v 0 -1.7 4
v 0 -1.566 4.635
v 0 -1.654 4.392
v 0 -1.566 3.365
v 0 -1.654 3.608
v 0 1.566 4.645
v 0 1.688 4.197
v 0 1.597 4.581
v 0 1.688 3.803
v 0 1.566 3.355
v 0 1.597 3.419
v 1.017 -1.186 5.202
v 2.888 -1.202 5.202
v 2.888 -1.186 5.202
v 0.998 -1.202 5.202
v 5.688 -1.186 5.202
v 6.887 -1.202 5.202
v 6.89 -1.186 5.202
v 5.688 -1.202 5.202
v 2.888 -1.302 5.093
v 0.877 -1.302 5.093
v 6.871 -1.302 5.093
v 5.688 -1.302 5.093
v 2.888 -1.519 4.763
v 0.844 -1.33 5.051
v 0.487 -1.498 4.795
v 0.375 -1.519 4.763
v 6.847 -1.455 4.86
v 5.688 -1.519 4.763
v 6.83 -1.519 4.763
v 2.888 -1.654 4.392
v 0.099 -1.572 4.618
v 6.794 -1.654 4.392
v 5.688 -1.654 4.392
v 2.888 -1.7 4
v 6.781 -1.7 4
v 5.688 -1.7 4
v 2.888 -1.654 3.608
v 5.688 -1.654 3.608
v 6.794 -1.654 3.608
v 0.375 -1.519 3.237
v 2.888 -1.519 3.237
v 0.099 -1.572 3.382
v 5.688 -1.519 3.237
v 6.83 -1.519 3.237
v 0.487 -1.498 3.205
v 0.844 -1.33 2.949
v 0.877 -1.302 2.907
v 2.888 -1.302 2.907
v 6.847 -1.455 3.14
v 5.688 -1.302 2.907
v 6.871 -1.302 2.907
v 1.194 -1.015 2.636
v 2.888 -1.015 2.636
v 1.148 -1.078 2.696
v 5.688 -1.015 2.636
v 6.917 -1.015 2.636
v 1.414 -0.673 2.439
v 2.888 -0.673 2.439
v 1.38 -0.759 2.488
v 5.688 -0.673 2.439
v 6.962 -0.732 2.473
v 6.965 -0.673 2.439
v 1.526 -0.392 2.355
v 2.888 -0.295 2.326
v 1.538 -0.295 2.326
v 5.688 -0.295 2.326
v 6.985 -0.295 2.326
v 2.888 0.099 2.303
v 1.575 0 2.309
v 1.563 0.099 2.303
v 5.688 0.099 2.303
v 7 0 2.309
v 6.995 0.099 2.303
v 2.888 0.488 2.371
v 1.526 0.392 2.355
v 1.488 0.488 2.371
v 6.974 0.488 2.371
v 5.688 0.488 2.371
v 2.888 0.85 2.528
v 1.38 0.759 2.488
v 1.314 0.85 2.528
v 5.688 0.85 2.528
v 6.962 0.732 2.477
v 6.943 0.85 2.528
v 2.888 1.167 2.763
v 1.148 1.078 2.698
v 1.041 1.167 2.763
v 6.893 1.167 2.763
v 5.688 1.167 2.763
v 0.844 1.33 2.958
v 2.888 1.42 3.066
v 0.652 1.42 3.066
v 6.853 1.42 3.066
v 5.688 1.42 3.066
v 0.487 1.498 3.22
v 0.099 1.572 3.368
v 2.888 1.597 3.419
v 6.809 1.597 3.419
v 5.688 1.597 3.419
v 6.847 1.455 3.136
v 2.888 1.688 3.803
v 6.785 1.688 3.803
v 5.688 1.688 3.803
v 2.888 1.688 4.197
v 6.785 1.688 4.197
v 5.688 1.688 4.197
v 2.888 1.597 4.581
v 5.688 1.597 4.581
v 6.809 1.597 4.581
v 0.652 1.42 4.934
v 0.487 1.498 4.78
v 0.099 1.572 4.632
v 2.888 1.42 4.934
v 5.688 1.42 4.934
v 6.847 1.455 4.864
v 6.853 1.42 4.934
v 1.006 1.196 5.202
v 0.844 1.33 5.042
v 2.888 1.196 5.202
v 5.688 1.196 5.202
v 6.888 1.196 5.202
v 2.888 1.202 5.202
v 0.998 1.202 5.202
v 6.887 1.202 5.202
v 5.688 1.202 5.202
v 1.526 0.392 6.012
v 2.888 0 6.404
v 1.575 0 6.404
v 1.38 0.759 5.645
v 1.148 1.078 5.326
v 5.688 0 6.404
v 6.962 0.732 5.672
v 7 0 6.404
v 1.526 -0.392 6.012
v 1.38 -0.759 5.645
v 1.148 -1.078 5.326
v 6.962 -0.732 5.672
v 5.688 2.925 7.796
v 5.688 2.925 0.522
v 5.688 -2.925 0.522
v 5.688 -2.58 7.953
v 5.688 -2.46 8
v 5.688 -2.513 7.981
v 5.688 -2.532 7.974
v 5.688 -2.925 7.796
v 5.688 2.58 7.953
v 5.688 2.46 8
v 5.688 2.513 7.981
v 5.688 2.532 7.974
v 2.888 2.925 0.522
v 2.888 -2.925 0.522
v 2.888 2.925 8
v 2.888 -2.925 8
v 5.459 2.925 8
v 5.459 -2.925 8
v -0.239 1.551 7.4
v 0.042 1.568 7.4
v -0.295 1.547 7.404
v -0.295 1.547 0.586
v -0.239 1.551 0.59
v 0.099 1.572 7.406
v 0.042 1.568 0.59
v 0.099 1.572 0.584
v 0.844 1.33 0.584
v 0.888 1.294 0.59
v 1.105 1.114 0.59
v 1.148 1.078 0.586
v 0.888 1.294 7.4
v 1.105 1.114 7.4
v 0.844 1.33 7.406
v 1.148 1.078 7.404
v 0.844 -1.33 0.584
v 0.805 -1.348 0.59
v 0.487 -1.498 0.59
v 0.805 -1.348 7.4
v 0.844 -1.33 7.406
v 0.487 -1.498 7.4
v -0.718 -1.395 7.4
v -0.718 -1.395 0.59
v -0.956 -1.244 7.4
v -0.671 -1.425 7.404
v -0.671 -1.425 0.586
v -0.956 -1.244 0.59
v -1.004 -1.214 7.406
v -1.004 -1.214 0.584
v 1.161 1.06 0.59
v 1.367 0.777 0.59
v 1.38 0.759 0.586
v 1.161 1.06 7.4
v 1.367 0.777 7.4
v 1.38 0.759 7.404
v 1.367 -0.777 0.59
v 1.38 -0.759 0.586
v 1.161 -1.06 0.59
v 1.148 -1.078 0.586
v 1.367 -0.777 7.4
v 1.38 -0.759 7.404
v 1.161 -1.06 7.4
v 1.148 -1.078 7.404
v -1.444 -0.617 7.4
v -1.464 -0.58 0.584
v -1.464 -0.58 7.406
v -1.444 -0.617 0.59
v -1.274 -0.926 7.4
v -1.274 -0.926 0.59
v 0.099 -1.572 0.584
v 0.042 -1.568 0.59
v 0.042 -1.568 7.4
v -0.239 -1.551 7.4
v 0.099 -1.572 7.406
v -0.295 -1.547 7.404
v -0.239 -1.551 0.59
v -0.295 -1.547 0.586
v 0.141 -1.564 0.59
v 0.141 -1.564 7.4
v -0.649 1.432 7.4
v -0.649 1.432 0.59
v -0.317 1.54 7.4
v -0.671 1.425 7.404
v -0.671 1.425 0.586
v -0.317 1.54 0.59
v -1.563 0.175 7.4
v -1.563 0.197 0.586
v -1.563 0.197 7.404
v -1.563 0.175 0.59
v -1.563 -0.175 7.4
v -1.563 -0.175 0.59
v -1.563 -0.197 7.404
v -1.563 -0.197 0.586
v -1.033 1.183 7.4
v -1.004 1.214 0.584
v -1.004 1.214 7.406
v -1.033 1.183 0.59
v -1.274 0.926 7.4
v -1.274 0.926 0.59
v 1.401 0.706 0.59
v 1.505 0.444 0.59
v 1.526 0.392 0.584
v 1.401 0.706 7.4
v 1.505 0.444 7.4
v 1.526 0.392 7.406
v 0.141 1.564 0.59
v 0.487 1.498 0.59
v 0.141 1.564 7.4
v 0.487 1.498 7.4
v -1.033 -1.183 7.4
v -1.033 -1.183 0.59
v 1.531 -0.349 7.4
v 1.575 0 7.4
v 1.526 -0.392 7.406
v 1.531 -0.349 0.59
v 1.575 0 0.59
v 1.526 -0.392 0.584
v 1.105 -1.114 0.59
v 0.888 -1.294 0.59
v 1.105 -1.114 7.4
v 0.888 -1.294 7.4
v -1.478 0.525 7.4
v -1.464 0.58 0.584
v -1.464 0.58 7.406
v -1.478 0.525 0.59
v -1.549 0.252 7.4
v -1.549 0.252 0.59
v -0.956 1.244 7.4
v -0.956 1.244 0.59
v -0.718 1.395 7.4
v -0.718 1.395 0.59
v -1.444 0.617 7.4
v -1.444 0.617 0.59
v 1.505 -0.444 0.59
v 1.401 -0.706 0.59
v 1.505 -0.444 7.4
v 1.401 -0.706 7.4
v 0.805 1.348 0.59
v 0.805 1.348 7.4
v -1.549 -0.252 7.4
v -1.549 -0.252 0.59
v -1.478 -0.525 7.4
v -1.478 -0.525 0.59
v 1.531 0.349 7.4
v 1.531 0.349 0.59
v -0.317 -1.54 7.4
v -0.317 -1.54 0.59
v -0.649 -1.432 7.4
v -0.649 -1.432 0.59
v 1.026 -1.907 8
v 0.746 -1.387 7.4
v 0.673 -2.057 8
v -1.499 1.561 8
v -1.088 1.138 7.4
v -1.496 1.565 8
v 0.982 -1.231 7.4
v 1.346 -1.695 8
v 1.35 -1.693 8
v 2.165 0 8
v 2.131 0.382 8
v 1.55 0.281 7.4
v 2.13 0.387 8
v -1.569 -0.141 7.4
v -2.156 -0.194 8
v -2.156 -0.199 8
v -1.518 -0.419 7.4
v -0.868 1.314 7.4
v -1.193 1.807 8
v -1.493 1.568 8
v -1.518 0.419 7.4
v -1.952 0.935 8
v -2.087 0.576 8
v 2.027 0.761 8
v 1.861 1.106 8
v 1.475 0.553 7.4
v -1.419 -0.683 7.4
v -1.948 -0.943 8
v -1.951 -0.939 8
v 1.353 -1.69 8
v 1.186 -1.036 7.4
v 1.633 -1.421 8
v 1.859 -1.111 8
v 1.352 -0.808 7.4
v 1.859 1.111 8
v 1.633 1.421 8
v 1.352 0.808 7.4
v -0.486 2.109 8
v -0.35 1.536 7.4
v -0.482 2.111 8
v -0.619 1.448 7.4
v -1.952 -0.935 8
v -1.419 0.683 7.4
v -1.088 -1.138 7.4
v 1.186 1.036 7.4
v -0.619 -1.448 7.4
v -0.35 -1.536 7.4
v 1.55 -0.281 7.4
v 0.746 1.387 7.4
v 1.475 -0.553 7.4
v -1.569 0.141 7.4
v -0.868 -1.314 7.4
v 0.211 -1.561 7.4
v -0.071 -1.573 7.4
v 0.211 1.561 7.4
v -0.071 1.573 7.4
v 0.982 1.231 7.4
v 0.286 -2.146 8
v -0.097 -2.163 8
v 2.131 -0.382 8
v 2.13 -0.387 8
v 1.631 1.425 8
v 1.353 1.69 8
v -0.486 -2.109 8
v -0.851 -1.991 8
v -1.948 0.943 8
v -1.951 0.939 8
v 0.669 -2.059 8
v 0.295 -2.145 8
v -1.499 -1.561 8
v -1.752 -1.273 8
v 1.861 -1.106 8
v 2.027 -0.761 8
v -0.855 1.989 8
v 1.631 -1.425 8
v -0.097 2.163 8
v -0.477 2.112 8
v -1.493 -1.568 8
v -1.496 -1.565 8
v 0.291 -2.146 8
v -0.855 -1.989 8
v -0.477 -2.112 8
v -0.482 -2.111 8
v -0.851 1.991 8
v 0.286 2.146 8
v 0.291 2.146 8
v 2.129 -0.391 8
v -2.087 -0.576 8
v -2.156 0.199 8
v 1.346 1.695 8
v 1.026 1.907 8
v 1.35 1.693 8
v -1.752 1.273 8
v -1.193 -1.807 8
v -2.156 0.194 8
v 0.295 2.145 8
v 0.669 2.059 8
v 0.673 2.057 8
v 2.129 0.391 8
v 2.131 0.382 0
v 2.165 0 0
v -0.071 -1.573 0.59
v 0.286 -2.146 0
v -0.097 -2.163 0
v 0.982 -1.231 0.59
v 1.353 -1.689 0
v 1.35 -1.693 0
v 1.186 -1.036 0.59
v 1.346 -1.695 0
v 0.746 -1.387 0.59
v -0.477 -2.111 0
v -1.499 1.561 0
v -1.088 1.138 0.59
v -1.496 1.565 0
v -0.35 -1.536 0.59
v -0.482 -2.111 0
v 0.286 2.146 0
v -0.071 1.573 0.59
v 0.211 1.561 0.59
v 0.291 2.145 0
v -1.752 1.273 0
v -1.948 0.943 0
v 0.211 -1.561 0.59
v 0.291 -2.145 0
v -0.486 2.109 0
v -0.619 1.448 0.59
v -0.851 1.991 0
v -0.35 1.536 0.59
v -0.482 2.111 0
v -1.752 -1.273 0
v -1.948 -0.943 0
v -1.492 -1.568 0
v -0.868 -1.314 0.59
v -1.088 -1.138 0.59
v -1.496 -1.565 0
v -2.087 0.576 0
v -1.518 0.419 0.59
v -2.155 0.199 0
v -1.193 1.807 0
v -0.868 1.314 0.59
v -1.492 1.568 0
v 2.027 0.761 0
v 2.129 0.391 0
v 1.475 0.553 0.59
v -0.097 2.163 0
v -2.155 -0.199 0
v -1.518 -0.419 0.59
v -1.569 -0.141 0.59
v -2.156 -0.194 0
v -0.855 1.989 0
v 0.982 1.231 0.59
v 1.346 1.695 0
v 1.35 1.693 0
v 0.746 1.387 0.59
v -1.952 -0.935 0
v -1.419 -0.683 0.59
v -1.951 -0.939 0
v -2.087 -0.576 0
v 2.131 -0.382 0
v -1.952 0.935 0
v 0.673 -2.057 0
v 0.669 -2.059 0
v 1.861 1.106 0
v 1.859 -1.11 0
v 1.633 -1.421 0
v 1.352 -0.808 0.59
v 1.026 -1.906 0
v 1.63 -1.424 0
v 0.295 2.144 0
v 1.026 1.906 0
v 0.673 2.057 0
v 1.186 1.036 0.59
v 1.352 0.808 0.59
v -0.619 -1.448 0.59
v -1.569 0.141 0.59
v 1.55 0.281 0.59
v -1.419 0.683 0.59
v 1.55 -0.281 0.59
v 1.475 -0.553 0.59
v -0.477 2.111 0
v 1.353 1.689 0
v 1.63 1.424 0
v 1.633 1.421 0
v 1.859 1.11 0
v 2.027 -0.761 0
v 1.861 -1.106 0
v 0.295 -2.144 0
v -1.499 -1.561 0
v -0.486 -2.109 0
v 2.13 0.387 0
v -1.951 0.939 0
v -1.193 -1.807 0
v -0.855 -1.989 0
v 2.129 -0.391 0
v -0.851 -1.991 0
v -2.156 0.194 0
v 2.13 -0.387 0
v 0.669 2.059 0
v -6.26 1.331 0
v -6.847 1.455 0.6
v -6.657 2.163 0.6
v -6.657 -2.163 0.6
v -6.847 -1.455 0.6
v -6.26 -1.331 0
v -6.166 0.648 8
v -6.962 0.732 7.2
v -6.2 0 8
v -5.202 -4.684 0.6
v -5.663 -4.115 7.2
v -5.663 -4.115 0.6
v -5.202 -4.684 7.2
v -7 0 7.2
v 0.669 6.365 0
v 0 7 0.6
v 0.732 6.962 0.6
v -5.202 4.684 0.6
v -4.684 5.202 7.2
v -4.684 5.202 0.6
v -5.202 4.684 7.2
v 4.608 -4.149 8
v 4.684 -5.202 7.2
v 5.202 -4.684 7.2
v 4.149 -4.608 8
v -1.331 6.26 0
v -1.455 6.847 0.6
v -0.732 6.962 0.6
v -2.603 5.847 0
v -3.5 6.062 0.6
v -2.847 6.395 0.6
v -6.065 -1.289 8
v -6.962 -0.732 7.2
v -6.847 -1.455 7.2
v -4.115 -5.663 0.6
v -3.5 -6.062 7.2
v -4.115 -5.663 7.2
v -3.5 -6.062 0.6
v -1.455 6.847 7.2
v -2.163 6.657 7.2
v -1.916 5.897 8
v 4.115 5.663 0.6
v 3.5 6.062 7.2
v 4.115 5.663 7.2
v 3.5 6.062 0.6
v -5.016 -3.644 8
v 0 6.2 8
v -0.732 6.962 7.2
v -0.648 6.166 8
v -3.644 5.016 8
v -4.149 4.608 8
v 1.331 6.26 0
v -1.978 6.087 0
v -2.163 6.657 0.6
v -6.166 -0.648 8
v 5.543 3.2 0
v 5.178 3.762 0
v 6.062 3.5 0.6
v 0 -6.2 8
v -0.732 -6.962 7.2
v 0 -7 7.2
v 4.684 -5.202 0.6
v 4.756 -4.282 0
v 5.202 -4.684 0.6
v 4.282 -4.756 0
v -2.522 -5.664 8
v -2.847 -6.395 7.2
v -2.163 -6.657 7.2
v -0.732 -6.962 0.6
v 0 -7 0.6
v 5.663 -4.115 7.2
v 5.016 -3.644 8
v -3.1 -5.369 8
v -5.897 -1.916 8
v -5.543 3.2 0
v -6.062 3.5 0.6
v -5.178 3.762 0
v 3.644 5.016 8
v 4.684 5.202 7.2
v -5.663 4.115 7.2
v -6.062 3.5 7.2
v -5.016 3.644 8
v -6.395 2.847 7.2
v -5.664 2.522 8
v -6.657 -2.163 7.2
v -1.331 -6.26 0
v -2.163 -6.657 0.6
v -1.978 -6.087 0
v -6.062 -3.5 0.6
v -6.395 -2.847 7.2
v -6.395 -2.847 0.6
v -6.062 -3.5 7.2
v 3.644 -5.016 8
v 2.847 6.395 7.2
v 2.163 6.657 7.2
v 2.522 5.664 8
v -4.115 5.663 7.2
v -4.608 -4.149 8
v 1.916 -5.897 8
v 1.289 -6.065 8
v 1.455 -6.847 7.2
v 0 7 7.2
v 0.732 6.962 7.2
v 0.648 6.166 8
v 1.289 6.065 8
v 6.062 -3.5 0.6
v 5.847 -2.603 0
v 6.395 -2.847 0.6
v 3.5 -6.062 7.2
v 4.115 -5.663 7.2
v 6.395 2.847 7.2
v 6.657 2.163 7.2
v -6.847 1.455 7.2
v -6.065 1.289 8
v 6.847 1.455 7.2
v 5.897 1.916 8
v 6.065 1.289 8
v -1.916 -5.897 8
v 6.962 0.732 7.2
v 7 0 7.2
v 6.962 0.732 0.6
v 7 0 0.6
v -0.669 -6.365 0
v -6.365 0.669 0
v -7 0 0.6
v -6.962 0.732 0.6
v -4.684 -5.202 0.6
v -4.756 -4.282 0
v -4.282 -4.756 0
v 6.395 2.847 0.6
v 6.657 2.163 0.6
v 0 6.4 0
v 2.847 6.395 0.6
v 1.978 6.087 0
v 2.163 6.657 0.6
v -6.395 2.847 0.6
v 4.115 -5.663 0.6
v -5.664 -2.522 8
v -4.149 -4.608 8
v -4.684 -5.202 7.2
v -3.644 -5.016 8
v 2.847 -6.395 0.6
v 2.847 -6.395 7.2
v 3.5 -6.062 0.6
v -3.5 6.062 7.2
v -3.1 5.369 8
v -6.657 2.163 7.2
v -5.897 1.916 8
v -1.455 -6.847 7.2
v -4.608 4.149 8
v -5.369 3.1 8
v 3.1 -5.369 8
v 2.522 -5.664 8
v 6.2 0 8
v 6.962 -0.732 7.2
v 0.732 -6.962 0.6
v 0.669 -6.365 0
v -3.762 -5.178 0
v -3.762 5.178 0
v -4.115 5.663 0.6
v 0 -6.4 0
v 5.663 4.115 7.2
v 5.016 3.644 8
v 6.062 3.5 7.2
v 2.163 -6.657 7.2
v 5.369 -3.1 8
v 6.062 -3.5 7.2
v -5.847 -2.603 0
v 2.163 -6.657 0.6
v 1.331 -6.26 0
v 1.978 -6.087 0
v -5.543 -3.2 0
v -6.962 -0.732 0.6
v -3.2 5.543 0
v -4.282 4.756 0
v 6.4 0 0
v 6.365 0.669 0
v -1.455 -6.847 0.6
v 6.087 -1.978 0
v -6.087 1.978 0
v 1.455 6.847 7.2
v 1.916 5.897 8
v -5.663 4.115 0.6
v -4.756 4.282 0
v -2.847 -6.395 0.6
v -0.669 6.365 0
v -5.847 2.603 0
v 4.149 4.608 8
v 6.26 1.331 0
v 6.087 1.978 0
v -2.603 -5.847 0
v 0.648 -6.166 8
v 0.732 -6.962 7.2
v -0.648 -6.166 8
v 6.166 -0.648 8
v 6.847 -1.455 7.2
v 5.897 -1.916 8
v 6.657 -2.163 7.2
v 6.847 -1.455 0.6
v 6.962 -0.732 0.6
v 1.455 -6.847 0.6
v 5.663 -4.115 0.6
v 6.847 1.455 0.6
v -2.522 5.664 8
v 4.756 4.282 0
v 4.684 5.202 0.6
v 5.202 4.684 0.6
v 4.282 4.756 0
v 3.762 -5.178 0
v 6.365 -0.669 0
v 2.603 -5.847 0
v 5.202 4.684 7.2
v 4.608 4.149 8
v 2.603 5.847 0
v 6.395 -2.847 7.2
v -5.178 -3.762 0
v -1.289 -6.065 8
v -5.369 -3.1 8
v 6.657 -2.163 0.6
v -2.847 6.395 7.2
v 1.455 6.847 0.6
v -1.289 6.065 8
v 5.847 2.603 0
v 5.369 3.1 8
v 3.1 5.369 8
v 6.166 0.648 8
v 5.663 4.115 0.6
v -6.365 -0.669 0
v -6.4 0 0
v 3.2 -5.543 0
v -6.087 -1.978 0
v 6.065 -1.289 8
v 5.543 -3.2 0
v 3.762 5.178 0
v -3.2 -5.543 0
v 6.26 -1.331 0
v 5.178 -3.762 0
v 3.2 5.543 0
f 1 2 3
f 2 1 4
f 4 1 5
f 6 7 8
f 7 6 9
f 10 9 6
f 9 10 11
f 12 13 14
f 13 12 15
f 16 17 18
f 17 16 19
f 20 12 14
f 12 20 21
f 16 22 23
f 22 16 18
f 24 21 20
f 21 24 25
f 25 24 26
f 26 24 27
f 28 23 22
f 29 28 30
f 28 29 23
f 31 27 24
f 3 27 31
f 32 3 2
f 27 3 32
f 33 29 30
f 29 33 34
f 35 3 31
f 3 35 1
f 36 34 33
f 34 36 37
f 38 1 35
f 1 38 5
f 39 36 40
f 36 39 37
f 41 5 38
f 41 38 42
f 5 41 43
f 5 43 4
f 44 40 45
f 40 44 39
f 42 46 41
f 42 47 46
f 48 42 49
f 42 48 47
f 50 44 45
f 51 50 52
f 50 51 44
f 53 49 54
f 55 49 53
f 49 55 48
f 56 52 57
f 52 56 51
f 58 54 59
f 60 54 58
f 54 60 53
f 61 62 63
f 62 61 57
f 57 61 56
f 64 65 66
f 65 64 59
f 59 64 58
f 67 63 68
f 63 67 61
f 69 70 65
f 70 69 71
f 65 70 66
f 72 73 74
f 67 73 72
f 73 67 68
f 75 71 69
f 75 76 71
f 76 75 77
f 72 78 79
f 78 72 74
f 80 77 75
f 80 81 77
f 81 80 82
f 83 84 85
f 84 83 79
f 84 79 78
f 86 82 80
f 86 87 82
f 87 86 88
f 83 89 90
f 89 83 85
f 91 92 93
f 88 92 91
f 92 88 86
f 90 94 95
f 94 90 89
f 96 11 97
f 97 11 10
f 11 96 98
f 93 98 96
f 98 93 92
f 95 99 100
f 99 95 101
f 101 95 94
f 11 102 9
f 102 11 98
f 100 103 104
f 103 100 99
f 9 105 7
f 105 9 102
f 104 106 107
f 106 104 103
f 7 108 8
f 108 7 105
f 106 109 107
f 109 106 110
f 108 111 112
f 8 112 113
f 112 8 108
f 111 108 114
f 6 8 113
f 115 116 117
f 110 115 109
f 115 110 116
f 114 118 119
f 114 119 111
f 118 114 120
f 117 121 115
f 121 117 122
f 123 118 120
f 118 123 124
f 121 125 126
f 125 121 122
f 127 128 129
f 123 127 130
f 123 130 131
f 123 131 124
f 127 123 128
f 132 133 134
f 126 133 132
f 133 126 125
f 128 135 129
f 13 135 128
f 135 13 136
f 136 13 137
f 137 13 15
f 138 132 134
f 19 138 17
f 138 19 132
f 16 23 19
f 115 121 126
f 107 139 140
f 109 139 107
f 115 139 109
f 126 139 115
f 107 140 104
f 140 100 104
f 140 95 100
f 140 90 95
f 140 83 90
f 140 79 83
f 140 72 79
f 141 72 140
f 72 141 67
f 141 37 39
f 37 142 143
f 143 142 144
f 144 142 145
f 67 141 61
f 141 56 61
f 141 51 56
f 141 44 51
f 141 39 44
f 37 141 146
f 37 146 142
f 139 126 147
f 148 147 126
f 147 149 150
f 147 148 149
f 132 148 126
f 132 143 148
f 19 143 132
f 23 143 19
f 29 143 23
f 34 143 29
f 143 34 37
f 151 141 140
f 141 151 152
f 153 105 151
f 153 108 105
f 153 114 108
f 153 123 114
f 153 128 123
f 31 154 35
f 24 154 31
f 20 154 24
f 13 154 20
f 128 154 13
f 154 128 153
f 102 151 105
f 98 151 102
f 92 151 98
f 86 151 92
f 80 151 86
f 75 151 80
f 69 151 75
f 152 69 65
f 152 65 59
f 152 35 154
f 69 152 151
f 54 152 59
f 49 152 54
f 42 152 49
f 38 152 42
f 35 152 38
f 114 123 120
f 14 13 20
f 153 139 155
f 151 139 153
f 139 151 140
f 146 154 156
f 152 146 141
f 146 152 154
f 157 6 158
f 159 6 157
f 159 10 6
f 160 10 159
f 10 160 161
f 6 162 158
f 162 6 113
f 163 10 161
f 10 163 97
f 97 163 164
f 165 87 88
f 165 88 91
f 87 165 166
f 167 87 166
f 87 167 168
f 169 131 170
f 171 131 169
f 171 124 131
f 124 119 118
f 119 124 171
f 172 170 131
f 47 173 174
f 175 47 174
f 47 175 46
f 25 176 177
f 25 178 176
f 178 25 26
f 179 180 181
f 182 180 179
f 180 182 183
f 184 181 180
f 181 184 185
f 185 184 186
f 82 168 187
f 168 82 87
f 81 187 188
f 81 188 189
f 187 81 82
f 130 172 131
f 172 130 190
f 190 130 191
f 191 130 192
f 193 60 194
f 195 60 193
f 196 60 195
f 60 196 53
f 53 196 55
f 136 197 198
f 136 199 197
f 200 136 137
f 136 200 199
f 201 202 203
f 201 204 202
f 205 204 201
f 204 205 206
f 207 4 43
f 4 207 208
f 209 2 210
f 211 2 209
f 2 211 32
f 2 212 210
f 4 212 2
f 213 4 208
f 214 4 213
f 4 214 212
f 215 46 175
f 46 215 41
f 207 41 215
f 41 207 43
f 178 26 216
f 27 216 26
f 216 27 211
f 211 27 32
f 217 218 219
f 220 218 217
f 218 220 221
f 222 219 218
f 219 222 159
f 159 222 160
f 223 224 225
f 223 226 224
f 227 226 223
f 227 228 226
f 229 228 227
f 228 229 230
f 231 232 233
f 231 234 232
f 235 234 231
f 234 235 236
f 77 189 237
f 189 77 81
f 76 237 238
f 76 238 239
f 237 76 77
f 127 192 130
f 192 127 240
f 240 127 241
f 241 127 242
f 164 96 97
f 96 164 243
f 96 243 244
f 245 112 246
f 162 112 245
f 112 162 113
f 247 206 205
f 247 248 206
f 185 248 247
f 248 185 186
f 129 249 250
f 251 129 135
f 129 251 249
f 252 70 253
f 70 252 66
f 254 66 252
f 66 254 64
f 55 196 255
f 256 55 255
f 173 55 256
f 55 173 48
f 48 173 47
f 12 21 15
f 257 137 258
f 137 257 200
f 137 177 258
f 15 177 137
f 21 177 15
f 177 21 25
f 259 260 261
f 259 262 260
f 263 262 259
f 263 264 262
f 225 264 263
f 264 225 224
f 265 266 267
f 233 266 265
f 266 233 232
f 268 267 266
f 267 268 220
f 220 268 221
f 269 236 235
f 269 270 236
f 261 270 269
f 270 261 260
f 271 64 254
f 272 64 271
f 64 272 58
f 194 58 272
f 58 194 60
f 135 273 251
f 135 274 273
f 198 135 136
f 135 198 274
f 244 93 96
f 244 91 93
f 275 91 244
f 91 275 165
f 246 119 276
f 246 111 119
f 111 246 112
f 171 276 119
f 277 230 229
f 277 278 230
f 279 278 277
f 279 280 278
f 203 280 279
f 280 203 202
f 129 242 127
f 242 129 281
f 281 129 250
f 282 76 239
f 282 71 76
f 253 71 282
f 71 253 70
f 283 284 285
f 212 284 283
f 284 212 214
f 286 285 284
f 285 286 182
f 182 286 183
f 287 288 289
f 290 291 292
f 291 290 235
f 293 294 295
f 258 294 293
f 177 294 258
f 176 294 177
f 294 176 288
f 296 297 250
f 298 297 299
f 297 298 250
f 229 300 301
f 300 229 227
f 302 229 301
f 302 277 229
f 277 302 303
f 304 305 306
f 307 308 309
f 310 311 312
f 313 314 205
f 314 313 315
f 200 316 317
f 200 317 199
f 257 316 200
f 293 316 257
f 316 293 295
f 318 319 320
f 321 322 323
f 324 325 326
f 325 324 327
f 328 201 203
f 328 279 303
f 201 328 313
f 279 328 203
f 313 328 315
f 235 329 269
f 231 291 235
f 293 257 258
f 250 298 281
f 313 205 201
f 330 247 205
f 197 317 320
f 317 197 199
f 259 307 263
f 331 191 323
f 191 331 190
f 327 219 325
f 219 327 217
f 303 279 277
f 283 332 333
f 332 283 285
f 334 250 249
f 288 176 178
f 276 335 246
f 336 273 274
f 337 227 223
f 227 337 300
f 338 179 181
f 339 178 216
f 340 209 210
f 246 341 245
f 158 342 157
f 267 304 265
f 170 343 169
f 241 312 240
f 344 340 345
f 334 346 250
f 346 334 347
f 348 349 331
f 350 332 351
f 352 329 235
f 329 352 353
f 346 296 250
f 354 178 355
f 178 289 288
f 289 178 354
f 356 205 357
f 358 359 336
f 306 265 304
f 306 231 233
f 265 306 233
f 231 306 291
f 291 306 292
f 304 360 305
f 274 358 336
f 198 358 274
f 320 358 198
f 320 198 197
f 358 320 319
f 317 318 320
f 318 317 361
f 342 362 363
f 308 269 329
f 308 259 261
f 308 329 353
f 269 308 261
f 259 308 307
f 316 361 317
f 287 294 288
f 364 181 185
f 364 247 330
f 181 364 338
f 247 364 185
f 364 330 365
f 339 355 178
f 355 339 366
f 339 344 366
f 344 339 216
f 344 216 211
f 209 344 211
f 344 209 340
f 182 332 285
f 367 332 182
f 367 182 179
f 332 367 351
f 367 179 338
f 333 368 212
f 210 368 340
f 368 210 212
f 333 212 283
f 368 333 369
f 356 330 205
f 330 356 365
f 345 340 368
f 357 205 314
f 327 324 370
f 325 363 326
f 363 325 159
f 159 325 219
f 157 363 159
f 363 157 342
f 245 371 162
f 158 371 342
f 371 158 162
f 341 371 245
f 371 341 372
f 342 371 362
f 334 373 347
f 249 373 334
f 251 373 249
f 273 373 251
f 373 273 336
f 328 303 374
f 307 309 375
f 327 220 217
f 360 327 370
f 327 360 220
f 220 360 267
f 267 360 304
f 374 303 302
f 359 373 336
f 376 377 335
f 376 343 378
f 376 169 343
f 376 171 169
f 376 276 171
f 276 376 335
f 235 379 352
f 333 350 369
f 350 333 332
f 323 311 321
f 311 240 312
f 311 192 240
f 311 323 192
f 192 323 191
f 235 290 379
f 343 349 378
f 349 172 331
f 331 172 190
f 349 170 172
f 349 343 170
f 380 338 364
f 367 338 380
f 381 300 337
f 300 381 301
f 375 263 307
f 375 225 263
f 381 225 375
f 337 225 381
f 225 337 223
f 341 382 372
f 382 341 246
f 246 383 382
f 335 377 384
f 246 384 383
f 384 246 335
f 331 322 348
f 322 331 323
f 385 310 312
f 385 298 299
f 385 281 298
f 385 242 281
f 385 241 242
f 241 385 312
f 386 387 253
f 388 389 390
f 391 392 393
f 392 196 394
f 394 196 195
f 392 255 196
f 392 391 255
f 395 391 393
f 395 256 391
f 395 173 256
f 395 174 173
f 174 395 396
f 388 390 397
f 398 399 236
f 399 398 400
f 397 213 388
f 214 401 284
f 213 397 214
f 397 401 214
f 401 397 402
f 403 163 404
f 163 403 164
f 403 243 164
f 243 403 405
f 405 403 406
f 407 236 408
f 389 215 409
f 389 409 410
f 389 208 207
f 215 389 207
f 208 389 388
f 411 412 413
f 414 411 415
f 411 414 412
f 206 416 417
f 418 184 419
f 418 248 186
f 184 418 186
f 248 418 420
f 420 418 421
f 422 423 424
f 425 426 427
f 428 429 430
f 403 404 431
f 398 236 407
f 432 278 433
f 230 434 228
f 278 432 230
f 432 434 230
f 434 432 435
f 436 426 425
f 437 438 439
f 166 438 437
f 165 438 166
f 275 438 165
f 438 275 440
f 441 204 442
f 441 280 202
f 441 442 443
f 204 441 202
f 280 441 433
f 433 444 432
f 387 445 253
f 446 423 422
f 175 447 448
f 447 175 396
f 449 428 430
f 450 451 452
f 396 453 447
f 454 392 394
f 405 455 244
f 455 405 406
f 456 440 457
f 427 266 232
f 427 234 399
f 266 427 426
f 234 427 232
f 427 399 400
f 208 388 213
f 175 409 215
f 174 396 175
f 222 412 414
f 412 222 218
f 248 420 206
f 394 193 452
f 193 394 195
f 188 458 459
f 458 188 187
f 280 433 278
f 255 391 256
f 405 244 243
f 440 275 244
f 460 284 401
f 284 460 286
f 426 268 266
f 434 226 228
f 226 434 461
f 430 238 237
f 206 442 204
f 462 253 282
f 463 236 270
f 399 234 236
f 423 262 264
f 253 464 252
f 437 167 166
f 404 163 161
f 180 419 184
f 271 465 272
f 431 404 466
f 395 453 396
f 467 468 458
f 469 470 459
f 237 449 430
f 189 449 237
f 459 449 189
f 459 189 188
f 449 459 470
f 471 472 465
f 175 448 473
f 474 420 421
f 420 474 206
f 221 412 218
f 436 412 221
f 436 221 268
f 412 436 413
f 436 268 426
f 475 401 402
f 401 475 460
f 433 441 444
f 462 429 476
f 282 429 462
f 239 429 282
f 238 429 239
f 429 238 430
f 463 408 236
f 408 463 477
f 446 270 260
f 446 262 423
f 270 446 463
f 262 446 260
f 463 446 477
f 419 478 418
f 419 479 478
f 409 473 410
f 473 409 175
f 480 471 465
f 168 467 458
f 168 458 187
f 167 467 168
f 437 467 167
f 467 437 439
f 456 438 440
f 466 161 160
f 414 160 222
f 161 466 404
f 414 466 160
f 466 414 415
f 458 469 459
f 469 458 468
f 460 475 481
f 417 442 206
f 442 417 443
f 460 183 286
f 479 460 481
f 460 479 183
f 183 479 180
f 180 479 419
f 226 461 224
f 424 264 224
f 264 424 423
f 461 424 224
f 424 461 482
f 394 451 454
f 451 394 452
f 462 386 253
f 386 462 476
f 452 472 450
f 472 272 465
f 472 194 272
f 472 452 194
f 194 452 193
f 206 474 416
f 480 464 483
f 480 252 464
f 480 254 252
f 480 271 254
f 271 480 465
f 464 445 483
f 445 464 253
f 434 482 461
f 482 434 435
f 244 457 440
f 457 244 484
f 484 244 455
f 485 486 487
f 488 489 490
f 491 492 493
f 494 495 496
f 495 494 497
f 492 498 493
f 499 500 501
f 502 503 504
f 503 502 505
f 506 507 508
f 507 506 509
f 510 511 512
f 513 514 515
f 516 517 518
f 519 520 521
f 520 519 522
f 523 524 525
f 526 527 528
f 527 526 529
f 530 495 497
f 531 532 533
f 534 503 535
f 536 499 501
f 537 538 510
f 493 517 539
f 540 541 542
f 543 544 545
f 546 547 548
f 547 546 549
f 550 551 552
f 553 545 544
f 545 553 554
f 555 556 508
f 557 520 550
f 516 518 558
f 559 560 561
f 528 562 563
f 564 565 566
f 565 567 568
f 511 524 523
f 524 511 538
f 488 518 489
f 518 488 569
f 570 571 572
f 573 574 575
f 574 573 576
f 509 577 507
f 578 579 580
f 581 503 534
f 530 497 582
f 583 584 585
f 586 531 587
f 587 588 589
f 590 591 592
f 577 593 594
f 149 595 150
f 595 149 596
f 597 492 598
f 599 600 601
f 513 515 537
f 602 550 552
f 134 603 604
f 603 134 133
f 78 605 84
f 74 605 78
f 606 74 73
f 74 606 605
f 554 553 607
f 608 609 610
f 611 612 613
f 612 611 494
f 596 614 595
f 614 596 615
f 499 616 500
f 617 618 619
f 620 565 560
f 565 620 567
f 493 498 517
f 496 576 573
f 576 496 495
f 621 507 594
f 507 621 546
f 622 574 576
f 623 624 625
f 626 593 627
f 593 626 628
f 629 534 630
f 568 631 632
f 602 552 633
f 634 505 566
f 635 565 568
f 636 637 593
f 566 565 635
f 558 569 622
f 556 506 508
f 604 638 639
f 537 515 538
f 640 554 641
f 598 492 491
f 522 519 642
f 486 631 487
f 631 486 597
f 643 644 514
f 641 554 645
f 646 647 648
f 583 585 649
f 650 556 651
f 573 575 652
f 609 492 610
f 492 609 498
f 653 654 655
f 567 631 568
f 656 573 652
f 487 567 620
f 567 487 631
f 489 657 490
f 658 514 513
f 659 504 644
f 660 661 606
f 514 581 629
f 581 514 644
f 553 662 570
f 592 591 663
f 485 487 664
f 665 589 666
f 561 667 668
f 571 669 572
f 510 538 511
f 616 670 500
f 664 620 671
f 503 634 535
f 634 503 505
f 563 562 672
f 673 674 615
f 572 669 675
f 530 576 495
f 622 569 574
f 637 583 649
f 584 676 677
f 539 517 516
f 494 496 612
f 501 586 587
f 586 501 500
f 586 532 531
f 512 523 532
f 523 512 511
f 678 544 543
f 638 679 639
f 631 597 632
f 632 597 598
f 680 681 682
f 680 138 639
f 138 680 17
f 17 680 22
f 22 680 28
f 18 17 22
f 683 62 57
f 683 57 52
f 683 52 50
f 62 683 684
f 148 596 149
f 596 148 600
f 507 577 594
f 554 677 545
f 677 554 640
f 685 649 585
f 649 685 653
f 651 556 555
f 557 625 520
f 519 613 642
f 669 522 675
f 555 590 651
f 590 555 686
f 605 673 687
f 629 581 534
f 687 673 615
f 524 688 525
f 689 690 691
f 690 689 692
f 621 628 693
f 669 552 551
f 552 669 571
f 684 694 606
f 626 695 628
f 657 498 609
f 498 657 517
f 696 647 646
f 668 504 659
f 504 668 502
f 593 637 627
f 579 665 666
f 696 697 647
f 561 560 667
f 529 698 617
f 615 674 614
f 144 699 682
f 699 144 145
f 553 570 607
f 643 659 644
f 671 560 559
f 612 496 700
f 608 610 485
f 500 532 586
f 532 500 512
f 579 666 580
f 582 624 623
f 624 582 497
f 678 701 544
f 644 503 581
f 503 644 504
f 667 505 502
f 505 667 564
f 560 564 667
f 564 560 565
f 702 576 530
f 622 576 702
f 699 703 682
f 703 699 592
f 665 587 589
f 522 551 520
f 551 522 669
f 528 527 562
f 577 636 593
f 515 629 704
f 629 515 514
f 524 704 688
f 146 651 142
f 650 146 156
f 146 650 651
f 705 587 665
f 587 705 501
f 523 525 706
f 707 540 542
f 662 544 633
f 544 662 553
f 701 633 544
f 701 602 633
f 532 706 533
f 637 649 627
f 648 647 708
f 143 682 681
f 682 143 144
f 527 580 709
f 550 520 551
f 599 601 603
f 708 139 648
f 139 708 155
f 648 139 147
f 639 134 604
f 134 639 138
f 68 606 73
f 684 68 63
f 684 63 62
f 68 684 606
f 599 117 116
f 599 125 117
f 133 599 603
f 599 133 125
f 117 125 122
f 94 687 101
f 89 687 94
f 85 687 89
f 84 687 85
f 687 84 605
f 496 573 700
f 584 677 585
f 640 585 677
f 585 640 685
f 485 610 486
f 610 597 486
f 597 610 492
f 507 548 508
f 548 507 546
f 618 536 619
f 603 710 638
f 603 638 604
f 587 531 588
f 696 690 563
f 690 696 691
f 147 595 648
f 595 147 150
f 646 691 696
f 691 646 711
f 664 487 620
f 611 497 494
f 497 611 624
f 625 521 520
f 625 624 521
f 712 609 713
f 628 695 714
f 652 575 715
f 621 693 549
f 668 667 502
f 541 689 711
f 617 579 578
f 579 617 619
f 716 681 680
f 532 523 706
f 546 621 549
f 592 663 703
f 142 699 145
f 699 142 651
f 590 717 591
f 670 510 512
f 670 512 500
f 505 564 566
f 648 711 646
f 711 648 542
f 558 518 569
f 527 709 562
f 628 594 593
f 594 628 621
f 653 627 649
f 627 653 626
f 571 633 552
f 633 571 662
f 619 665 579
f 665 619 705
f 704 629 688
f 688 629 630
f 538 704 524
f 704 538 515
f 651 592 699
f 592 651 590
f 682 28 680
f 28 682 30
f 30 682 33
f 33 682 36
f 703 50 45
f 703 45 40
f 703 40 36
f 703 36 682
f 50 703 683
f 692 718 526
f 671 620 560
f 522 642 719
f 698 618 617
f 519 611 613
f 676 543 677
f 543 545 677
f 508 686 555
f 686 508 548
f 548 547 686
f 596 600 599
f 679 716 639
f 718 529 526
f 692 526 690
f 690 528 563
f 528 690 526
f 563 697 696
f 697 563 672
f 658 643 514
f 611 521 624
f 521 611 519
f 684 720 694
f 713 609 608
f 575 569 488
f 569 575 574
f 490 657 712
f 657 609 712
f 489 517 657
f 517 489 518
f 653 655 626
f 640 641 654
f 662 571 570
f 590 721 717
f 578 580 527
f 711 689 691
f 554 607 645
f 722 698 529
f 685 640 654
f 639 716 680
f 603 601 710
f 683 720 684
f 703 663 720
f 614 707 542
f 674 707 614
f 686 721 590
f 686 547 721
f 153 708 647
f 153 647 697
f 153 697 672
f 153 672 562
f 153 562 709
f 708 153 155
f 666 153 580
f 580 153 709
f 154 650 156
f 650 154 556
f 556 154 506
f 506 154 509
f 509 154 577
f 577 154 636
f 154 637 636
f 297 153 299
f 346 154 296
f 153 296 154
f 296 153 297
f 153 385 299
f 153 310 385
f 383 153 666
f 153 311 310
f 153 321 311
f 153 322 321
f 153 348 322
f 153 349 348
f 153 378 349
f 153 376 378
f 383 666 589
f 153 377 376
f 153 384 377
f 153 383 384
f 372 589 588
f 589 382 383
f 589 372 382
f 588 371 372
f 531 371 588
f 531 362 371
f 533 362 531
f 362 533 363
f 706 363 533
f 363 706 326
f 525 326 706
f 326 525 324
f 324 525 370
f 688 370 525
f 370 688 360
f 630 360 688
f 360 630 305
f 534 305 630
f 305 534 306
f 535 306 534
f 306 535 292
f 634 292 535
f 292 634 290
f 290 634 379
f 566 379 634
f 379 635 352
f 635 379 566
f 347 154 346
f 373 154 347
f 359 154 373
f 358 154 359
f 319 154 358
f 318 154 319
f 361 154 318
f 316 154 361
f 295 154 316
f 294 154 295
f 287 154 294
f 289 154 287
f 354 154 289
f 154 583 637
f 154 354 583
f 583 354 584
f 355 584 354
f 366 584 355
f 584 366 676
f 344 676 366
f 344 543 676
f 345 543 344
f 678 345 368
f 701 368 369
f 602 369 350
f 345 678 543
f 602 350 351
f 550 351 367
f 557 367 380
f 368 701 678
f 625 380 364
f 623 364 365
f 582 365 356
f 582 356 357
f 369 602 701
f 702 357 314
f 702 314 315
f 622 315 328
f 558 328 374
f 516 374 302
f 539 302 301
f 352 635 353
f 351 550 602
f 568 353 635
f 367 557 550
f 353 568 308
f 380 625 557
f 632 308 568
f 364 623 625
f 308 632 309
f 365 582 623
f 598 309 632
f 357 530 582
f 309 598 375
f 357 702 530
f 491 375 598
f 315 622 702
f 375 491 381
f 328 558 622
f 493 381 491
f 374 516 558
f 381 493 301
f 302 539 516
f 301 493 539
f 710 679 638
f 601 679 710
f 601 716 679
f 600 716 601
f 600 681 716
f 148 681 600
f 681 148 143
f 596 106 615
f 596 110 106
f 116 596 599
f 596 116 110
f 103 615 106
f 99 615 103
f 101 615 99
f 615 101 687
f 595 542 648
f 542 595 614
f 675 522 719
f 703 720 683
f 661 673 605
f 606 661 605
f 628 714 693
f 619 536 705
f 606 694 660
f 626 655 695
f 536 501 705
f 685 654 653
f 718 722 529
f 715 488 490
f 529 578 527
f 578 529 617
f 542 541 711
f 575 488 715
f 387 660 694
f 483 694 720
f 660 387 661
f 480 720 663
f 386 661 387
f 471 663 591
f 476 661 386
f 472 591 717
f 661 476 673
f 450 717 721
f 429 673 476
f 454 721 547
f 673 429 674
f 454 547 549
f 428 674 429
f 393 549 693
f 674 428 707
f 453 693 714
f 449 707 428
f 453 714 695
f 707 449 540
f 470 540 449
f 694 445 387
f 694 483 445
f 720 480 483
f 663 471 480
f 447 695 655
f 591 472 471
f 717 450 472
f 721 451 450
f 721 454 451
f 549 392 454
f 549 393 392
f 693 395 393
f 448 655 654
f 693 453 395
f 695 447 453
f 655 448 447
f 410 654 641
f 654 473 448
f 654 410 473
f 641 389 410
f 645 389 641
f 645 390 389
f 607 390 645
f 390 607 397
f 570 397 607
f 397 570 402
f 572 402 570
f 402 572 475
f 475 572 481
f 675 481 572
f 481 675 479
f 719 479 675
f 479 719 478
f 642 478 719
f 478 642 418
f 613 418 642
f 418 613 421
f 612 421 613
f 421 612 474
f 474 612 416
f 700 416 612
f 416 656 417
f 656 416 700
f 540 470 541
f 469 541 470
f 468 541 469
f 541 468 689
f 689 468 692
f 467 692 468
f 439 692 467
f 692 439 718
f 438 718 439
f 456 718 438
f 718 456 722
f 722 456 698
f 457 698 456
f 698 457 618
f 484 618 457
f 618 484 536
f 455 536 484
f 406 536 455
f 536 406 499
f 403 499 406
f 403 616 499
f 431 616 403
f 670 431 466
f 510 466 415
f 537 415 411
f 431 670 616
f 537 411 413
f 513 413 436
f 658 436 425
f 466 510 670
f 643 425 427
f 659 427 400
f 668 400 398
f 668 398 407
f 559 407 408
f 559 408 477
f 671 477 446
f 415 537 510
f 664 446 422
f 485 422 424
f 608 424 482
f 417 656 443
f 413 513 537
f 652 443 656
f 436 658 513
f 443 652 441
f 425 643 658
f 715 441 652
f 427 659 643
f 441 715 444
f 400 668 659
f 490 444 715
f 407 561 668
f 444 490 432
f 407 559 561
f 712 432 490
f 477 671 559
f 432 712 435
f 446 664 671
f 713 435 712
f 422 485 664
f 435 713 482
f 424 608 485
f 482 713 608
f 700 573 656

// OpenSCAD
// file: ../stem_core.scad
// =====================================================================
//  stem_core.scad — shared geometry helpers for every STEM_KIT part.
// =====================================================================
include <../PARAMETERS/config.scad>
// =====================================================================

// ---------- rounded / chamfered prisms --------------------------------

// Rounded rectangle (2D), centred.
module rrect(size, r) {
    rr = min(r, min(size[0], size[1]) / 2 - 0.01);
    offset(r = rr) square([size[0] - 2 * rr, size[1] - 2 * rr], center = true);
}

// Box with rounded vertical edges, chamfered bottom edge (elephant-foot
// relief) and rounded-ish (chamfered) top edge. Sits on z = 0, centred XY.
module rbox(size, r = 2, top = edge_r, bottom = chamfer) {
    h = size[2];
    hull() {
        linear_extrude(0.01) rrect([size[0] - 2 * bottom, size[1] - 2 * bottom], max(r - bottom, 0.1));
        translate([0, 0, bottom]) linear_extrude(h - bottom - top) rrect([size[0], size[1]], r);
        translate([0, 0, h - 0.01]) linear_extrude(0.01) rrect([size[0] - 2 * top, size[1] - 2 * top], max(r - top, 0.1));
    }
}

// Cylinder with chamfered/rounded top and bottom edges (safe hubs, knobs).
module rcyl(d, h, top = edge_r, bottom = chamfer) {
    rotate_extrude() polygon([
        [0, 0], [d / 2 - bottom, 0], [d / 2, bottom],
        [d / 2, h - top], [d / 2 - top, h], [0, h]
    ]);
}

// Stadium (slot / rounded bar) 2D between two points on the X axis.
module stadium2d(len, w) {
    hull() { circle(d = w); translate([len, 0]) circle(d = w); }
}

// ---------- holes ------------------------------------------------------

// Vertical through hole with small top/bottom chamfers.
module vhole(d = grid_hole_d, h = 50, ch = 0.4) {
    translate([0, 0, -h / 2]) cylinder(d = d, h = h);
}

// Horizontal hole along +Y, printable without supports (teardrop tip up).
module teardrop_y(d, len, center = true) {
    translate([0, center ? -len / 2 : 0, 0]) rotate([-90, 0, 0])
        linear_extrude(len) teardrop2d(d);
}
module teardrop_x(d, len, center = true) {
    translate([center ? -len / 2 : 0, 0, 0]) rotate([0, 90, 0]) rotate([0, 0, -90])
        linear_extrude(len) teardrop2d(d);
}
// 2D teardrop: circle + 45° roof pointing "up" in the final part (+Z).
// After rotate([-90,0,0]) local +Y becomes -Z, so the roof points to -Y here.
module teardrop2d(d) {
    r = d / 2;
    union() {
        circle(d = d);
        polygon([[-r * sqrt(2) / 2, -r * sqrt(2) / 2], [0, -r * sqrt(2)], [r * sqrt(2) / 2, -r * sqrt(2) / 2]]);
    }
}

// Hex nut pocket (flat sides parallel to X), opening at z = 0 going +Z.
module nut_pocket(depth = nut_pocket_depth, af = nut_pocket_af) {
    cylinder(d = af / cos(30), h = depth, $fn = 6);
}

// Side-entry nut slot: nut plane is XY, slot opens toward +dir (X).
// Centred on the screw axis (Z), slot height nut_slot_t, runs out `len`.
module nut_slot_x(len = 10, af = nut_pocket_af, t = nut_slot_t) {
    translate([0, 0, -t / 2]) hull() {
        cylinder(d = af / cos(30), h = t, $fn = 6);
        translate([len, 0, 0]) cylinder(d = af / cos(30), h = t, $fn = 6);
    }
}

// Counterbored clearance hole from top surface at height `top` downward.
module cbore(top, depth, d = counterbore_d) {
    translate([0, 0, top - depth]) cylinder(d = d, h = depth + 20);
    translate([0, 0, -20]) cylinder(d = grid_hole_d, h = top + 40);
}

// Grid of vertical holes: nx x ny, pitch grid_pitch, first hole centred
// at `origin` (XY). Used by every plate.
module grid_holes(nx, ny, origin = [0, 0], h = 100, d = grid_hole_d) {
    for (i = [0 : nx - 1], j = [0 : ny - 1])
        translate([origin[0] + i * grid_pitch, origin[1] + j * grid_pitch, 0]) vhole(d, h);
}

// Slot (for adjustable mounting) along X, length = travel.
module slot_x(travel, d = grid_hole_d, h = 100) {
    translate([-travel / 2, 0, -h / 2]) linear_extrude(h) stadium2d(travel, d);
}

// ---------- shaft bores ------------------------------------------------

// 2D bore profile: round, or D if shaft_flat > 0.
module bore2d(d) {
    if (shaft_flat > 0)
        intersection() { circle(d = d); translate([-d, -d / 2]) square([2 * d, d - shaft_flat + (d - shaft_diameter) / 2]); }
    else circle(d = d);
}

// Standard HUB: cylinder hub_d x hub_h standing on z = z0, with bore,
// radial M3 set screw at mid height and a captive-nut slot from the top.
// Call inside difference() for the cut-outs: hub_body()/hub_cuts().
module hub_body(z0, d = hub_d, h = hub_h) {
    translate([0, 0, z0]) rcyl(d, h, top = 0.8, bottom = 0);
}
module hub_cuts(z0, total_h, d = hub_d, h = hub_h, bore = shaft_fixed_bore, set_screw = true, screw_angle = 0) {
    // bore through everything
    translate([0, 0, -1]) linear_extrude(total_h + 2) bore2d(bore);
    // entry chamfer on bore
    translate([0, 0, total_h - 0.6]) cylinder(d1 = bore, d2 = bore + 1.2, h = 0.61);
    translate([0, 0, -0.01]) cylinder(d1 = bore + 1.2, d2 = bore, h = 0.6);
    if (set_screw) rotate([0, 0, screw_angle]) {
        zs = z0 + h / 2;
        // radial screw hole (teardrop, prints without support)
        translate([0, 0, zs]) teardrop_x(screw_clear_d, d, center = false);
        // captive nut slot, entered from the hub top face
        nr = bore / 2 + (d / 2 - bore / 2) / 2;       // radial position of nut
        translate([nr - nut_slot_t / 2, -nut_pocket_af / 2, zs - nut_pocket_af / cos(30) / 2 - 0.1])
            cube([nut_slot_t, nut_pocket_af, total_h + 10]);   // open to the hub top face
    }
}

// ---------- labels -----------------------------------------------------

// Engrave text into a top surface at height z (depth 0.6 = 3 layers).
module engrave(txt, size = 5, z = 0, depth = 0.6, halign = "center") {
    translate([0, 0, z - depth]) linear_extrude(depth + 1)
        text(txt, size = size, font = "Liberation Sans:style=Bold", halign = halign, valign = "center");
}

// ---------- misc -------------------------------------------------------

function grid_snap(v) = ceil(v / grid_pitch) * grid_pitch;
// file: ../../PARAMETERS/config.scad
// =====================================================================
//  STEM_KIT — CENTRAL PARAMETER FILE  ("ForgeGrid" mechanical standard)
// ---------------------------------------------------------------------
//  Every part in the library includes this file. Change a value here,
//  run `python3 tools/build.py`, and the whole library regenerates.
//  All dimensions in millimetres.
// =====================================================================

// ---------------------------------------------------------------------
// 1. PRINTER / PROCESS
// ---------------------------------------------------------------------
nozzle          = 0.4;
layer_height    = 0.2;
tolerance       = 0.2;    // sliding clearance per side (tune with STEM_TOLERANCE_TEST)
press_allow     = 0.05;   // extra for press fits (bores that should grip)
min_wall        = 1.6;    // never go below this
wall_thickness  = 2.4;    // preferred wall (6 perimeters @ 0.4)
edge_r          = 1.0;    // rounding of exposed edges (child safety)
chamfer         = 0.6;    // bottom-edge chamfer (elephant-foot relief)

$fa = 6;                  // facet angle
$fs = 0.4;                // facet size

// ---------------------------------------------------------------------
// 2. GRID  (the heart of the ecosystem)
// ---------------------------------------------------------------------
//  Holes sit on a 10 mm lattice, 5 mm in from every plate edge, so
//  plates placed side by side keep one continuous lattice.
grid_pitch            = 10;
plate_size            = 100;   // universal base plate (square)
plate_thickness       = 6;     // base plates, rails, chassis
foot_thickness        = 4;     // flange / foot of every mount
//  => standard joint: 4 mm foot + 6 mm plate = M3 x 10 screw, nut in
//     the hex pocket under the plate. One screw length does 90 % of joints.

// ---------------------------------------------------------------------
// 3. FASTENERS (M3 everywhere: one screwdriver, one nut)
// ---------------------------------------------------------------------
screw_size            = 3;
screw_clear_d         = 3.4;   // clearance hole (also the grid hole)
grid_hole_d           = screw_clear_d;
screw_tap_d           = 2.6;   // hole a screw self-taps into
screw_head_d          = 5.7;   // ISO 7380 BUTTON head = kit standard (low, rounded, child-safe)
screw_head_h          = 1.65;
counterbore_d         = 6.4;
nut_af                = 5.5;   // M3 nut across flats
nut_thick             = 2.4;
nut_pocket_af         = nut_af + 0.35;
nut_pocket_depth      = 3.0;   // pocket under plates (nut sits flush)
nut_slot_t            = nut_thick + 0.4;  // side-entry slot thickness
set_screw_len         = 6;     // M3 x 6 grub screw for hubs

// ---------------------------------------------------------------------
// 4. SHAFTS
// ---------------------------------------------------------------------
//  Default: 3 mm steel rod (silver steel / stainless). Printed shafts
//  are provided for light-duty use. Alternative systems: set
//  shaft_diameter = 4 or 5 and rebuild.
shaft_diameter        = 3;
shaft_flat            = 0;     // >0 : D-shaft, flat depth (e.g. 0.5)
shaft_fixed_bore      = shaft_diameter + 0.15;  // hub bore (set-screw locked)
shaft_free_bore       = shaft_diameter + 0.4;   // free-spinning bore / bushing
shaft_lengths         = [40, 60, 80, 100, 120];

//  Horizontal shafts: all pillow blocks, motor mounts and axle mounts
//  put their axis at this height above the surface they are bolted to,
//  so any two of them on the grid are automatically coaxial/parallel.
axis_height           = 17;
axis_height_high      = 37;    // = axis_height + 2 pitches (pulleys, big wheels)

// ---------------------------------------------------------------------
// 5. BEARINGS
// ---------------------------------------------------------------------
bearing_size          = [5, 16, 5];   // 625 : bore, OD, width (default housing)
bearing_small         = [3, 10, 4];   // 623 : fits 3 mm shafts via adapter ring
bearing_pocket_d      = bearing_size[1] + 0.15;

// ---------------------------------------------------------------------
// 6. GEARS
// ---------------------------------------------------------------------
//  Module 2 + tooth counts that are multiples of 10  =>  centre distance
//  = (z1+z2) mm is ALWAYS a multiple of 10  =>  ANY two gears mesh when
//  their shafts sit in grid holes. (3-4-5 diagonals also work: 50 mm.)
gear_module           = 2;
gear_pressure_angle   = 20;
gear_width            = 6;
gear_backlash         = 0.30;  // total circular backlash per mesh
gear_clearance_k      = 0.25;  // root clearance = k * module
gear_teeth_set        = [10, 20, 30, 40];
//  Gearbox frame: two frame plates, outer faces 60 mm apart (on grid),
//  48 mm gap = three gear levels (A, M, B).
frame_gap             = 48;
hub_d                 = 14;
hub_h                 = 7;

// ---------------------------------------------------------------------
// 7. WHEELS / PULLEYS
// ---------------------------------------------------------------------
wheel_diameter        = 60;
wheel_width           = 10;
axle_diameter         = shaft_diameter;
oring_cs              = 3.0;    // O-ring cross-section used as tyre / belt
belt_cs               = 2.5;    // O-ring / round-belt cord for pulleys
pulley_sizes          = [20, 40, 60];  // effective (belt-line) diameters

// ---------------------------------------------------------------------
// 8. MOTORS (130-size toy / solar motor is the default)
// ---------------------------------------------------------------------
motor_size            = [20.2, 15.2, 25.2]; // body dia, across-flats, length
motor_d               = motor_size[0];
motor_flat            = motor_size[1];
motor_len             = motor_size[2];
motor_boss_d          = 6.2;
motor_boss_h          = 1.6;
motor_shaft_d         = 2.0;
motor_shaft_len       = 8.5;   // beyond boss
motor_shaft_bore      = 1.9;   // press fit onto 2 mm motor shaft

// ---------------------------------------------------------------------
// 9. SOLAR PANEL (bought, not printed) — frame is parametric
// ---------------------------------------------------------------------
solar_panel_size      = [110, 69, 3.0];  // 5 V 1 W epoxy panel (common)
solar_panel_clear     = 0.6;

// ---------------------------------------------------------------------
// 10. ELECTRONICS
// ---------------------------------------------------------------------
mounting_hole_spacing = grid_pitch;   // everything bolts to the grid
electronics_slot_w    = screw_clear_d;
led_hole_d            = 5.1;
buzzer_hole_d         = 12.2;

// ---------------------------------------------------------------------
// 11. SAFETY LIMITS (checked by tools/qc.py)
// ---------------------------------------------------------------------
max_part_voltage      = 12;    // nothing in this kit uses more
min_rim_thickness     = 2.0;   // blades/links: no edge thinner than this
finger_gap_max        = 6;     // guard openings smaller than a child's finger
// main file
// =====================================================================
//  PART: shaft collar — COMMON/shafts
//  Locks a shaft axially (or spaces gears) with the standard hub set
//  screw (M3 x 6 grub + M3 nut). Same hub geometry as every gear/wheel.
//  Print: flat. No supports.
// =====================================================================
include <../../PARAMETERS/config.scad>
use <../stem_core.scad>

collar_h = 8;
shaft_collar();

module shaft_collar(h = collar_h) {
    difference() {
        rcyl(hub_d, h, top = 0.8, bottom = chamfer);
        hub_cuts(0, h, hub_d, h);
    }
}
